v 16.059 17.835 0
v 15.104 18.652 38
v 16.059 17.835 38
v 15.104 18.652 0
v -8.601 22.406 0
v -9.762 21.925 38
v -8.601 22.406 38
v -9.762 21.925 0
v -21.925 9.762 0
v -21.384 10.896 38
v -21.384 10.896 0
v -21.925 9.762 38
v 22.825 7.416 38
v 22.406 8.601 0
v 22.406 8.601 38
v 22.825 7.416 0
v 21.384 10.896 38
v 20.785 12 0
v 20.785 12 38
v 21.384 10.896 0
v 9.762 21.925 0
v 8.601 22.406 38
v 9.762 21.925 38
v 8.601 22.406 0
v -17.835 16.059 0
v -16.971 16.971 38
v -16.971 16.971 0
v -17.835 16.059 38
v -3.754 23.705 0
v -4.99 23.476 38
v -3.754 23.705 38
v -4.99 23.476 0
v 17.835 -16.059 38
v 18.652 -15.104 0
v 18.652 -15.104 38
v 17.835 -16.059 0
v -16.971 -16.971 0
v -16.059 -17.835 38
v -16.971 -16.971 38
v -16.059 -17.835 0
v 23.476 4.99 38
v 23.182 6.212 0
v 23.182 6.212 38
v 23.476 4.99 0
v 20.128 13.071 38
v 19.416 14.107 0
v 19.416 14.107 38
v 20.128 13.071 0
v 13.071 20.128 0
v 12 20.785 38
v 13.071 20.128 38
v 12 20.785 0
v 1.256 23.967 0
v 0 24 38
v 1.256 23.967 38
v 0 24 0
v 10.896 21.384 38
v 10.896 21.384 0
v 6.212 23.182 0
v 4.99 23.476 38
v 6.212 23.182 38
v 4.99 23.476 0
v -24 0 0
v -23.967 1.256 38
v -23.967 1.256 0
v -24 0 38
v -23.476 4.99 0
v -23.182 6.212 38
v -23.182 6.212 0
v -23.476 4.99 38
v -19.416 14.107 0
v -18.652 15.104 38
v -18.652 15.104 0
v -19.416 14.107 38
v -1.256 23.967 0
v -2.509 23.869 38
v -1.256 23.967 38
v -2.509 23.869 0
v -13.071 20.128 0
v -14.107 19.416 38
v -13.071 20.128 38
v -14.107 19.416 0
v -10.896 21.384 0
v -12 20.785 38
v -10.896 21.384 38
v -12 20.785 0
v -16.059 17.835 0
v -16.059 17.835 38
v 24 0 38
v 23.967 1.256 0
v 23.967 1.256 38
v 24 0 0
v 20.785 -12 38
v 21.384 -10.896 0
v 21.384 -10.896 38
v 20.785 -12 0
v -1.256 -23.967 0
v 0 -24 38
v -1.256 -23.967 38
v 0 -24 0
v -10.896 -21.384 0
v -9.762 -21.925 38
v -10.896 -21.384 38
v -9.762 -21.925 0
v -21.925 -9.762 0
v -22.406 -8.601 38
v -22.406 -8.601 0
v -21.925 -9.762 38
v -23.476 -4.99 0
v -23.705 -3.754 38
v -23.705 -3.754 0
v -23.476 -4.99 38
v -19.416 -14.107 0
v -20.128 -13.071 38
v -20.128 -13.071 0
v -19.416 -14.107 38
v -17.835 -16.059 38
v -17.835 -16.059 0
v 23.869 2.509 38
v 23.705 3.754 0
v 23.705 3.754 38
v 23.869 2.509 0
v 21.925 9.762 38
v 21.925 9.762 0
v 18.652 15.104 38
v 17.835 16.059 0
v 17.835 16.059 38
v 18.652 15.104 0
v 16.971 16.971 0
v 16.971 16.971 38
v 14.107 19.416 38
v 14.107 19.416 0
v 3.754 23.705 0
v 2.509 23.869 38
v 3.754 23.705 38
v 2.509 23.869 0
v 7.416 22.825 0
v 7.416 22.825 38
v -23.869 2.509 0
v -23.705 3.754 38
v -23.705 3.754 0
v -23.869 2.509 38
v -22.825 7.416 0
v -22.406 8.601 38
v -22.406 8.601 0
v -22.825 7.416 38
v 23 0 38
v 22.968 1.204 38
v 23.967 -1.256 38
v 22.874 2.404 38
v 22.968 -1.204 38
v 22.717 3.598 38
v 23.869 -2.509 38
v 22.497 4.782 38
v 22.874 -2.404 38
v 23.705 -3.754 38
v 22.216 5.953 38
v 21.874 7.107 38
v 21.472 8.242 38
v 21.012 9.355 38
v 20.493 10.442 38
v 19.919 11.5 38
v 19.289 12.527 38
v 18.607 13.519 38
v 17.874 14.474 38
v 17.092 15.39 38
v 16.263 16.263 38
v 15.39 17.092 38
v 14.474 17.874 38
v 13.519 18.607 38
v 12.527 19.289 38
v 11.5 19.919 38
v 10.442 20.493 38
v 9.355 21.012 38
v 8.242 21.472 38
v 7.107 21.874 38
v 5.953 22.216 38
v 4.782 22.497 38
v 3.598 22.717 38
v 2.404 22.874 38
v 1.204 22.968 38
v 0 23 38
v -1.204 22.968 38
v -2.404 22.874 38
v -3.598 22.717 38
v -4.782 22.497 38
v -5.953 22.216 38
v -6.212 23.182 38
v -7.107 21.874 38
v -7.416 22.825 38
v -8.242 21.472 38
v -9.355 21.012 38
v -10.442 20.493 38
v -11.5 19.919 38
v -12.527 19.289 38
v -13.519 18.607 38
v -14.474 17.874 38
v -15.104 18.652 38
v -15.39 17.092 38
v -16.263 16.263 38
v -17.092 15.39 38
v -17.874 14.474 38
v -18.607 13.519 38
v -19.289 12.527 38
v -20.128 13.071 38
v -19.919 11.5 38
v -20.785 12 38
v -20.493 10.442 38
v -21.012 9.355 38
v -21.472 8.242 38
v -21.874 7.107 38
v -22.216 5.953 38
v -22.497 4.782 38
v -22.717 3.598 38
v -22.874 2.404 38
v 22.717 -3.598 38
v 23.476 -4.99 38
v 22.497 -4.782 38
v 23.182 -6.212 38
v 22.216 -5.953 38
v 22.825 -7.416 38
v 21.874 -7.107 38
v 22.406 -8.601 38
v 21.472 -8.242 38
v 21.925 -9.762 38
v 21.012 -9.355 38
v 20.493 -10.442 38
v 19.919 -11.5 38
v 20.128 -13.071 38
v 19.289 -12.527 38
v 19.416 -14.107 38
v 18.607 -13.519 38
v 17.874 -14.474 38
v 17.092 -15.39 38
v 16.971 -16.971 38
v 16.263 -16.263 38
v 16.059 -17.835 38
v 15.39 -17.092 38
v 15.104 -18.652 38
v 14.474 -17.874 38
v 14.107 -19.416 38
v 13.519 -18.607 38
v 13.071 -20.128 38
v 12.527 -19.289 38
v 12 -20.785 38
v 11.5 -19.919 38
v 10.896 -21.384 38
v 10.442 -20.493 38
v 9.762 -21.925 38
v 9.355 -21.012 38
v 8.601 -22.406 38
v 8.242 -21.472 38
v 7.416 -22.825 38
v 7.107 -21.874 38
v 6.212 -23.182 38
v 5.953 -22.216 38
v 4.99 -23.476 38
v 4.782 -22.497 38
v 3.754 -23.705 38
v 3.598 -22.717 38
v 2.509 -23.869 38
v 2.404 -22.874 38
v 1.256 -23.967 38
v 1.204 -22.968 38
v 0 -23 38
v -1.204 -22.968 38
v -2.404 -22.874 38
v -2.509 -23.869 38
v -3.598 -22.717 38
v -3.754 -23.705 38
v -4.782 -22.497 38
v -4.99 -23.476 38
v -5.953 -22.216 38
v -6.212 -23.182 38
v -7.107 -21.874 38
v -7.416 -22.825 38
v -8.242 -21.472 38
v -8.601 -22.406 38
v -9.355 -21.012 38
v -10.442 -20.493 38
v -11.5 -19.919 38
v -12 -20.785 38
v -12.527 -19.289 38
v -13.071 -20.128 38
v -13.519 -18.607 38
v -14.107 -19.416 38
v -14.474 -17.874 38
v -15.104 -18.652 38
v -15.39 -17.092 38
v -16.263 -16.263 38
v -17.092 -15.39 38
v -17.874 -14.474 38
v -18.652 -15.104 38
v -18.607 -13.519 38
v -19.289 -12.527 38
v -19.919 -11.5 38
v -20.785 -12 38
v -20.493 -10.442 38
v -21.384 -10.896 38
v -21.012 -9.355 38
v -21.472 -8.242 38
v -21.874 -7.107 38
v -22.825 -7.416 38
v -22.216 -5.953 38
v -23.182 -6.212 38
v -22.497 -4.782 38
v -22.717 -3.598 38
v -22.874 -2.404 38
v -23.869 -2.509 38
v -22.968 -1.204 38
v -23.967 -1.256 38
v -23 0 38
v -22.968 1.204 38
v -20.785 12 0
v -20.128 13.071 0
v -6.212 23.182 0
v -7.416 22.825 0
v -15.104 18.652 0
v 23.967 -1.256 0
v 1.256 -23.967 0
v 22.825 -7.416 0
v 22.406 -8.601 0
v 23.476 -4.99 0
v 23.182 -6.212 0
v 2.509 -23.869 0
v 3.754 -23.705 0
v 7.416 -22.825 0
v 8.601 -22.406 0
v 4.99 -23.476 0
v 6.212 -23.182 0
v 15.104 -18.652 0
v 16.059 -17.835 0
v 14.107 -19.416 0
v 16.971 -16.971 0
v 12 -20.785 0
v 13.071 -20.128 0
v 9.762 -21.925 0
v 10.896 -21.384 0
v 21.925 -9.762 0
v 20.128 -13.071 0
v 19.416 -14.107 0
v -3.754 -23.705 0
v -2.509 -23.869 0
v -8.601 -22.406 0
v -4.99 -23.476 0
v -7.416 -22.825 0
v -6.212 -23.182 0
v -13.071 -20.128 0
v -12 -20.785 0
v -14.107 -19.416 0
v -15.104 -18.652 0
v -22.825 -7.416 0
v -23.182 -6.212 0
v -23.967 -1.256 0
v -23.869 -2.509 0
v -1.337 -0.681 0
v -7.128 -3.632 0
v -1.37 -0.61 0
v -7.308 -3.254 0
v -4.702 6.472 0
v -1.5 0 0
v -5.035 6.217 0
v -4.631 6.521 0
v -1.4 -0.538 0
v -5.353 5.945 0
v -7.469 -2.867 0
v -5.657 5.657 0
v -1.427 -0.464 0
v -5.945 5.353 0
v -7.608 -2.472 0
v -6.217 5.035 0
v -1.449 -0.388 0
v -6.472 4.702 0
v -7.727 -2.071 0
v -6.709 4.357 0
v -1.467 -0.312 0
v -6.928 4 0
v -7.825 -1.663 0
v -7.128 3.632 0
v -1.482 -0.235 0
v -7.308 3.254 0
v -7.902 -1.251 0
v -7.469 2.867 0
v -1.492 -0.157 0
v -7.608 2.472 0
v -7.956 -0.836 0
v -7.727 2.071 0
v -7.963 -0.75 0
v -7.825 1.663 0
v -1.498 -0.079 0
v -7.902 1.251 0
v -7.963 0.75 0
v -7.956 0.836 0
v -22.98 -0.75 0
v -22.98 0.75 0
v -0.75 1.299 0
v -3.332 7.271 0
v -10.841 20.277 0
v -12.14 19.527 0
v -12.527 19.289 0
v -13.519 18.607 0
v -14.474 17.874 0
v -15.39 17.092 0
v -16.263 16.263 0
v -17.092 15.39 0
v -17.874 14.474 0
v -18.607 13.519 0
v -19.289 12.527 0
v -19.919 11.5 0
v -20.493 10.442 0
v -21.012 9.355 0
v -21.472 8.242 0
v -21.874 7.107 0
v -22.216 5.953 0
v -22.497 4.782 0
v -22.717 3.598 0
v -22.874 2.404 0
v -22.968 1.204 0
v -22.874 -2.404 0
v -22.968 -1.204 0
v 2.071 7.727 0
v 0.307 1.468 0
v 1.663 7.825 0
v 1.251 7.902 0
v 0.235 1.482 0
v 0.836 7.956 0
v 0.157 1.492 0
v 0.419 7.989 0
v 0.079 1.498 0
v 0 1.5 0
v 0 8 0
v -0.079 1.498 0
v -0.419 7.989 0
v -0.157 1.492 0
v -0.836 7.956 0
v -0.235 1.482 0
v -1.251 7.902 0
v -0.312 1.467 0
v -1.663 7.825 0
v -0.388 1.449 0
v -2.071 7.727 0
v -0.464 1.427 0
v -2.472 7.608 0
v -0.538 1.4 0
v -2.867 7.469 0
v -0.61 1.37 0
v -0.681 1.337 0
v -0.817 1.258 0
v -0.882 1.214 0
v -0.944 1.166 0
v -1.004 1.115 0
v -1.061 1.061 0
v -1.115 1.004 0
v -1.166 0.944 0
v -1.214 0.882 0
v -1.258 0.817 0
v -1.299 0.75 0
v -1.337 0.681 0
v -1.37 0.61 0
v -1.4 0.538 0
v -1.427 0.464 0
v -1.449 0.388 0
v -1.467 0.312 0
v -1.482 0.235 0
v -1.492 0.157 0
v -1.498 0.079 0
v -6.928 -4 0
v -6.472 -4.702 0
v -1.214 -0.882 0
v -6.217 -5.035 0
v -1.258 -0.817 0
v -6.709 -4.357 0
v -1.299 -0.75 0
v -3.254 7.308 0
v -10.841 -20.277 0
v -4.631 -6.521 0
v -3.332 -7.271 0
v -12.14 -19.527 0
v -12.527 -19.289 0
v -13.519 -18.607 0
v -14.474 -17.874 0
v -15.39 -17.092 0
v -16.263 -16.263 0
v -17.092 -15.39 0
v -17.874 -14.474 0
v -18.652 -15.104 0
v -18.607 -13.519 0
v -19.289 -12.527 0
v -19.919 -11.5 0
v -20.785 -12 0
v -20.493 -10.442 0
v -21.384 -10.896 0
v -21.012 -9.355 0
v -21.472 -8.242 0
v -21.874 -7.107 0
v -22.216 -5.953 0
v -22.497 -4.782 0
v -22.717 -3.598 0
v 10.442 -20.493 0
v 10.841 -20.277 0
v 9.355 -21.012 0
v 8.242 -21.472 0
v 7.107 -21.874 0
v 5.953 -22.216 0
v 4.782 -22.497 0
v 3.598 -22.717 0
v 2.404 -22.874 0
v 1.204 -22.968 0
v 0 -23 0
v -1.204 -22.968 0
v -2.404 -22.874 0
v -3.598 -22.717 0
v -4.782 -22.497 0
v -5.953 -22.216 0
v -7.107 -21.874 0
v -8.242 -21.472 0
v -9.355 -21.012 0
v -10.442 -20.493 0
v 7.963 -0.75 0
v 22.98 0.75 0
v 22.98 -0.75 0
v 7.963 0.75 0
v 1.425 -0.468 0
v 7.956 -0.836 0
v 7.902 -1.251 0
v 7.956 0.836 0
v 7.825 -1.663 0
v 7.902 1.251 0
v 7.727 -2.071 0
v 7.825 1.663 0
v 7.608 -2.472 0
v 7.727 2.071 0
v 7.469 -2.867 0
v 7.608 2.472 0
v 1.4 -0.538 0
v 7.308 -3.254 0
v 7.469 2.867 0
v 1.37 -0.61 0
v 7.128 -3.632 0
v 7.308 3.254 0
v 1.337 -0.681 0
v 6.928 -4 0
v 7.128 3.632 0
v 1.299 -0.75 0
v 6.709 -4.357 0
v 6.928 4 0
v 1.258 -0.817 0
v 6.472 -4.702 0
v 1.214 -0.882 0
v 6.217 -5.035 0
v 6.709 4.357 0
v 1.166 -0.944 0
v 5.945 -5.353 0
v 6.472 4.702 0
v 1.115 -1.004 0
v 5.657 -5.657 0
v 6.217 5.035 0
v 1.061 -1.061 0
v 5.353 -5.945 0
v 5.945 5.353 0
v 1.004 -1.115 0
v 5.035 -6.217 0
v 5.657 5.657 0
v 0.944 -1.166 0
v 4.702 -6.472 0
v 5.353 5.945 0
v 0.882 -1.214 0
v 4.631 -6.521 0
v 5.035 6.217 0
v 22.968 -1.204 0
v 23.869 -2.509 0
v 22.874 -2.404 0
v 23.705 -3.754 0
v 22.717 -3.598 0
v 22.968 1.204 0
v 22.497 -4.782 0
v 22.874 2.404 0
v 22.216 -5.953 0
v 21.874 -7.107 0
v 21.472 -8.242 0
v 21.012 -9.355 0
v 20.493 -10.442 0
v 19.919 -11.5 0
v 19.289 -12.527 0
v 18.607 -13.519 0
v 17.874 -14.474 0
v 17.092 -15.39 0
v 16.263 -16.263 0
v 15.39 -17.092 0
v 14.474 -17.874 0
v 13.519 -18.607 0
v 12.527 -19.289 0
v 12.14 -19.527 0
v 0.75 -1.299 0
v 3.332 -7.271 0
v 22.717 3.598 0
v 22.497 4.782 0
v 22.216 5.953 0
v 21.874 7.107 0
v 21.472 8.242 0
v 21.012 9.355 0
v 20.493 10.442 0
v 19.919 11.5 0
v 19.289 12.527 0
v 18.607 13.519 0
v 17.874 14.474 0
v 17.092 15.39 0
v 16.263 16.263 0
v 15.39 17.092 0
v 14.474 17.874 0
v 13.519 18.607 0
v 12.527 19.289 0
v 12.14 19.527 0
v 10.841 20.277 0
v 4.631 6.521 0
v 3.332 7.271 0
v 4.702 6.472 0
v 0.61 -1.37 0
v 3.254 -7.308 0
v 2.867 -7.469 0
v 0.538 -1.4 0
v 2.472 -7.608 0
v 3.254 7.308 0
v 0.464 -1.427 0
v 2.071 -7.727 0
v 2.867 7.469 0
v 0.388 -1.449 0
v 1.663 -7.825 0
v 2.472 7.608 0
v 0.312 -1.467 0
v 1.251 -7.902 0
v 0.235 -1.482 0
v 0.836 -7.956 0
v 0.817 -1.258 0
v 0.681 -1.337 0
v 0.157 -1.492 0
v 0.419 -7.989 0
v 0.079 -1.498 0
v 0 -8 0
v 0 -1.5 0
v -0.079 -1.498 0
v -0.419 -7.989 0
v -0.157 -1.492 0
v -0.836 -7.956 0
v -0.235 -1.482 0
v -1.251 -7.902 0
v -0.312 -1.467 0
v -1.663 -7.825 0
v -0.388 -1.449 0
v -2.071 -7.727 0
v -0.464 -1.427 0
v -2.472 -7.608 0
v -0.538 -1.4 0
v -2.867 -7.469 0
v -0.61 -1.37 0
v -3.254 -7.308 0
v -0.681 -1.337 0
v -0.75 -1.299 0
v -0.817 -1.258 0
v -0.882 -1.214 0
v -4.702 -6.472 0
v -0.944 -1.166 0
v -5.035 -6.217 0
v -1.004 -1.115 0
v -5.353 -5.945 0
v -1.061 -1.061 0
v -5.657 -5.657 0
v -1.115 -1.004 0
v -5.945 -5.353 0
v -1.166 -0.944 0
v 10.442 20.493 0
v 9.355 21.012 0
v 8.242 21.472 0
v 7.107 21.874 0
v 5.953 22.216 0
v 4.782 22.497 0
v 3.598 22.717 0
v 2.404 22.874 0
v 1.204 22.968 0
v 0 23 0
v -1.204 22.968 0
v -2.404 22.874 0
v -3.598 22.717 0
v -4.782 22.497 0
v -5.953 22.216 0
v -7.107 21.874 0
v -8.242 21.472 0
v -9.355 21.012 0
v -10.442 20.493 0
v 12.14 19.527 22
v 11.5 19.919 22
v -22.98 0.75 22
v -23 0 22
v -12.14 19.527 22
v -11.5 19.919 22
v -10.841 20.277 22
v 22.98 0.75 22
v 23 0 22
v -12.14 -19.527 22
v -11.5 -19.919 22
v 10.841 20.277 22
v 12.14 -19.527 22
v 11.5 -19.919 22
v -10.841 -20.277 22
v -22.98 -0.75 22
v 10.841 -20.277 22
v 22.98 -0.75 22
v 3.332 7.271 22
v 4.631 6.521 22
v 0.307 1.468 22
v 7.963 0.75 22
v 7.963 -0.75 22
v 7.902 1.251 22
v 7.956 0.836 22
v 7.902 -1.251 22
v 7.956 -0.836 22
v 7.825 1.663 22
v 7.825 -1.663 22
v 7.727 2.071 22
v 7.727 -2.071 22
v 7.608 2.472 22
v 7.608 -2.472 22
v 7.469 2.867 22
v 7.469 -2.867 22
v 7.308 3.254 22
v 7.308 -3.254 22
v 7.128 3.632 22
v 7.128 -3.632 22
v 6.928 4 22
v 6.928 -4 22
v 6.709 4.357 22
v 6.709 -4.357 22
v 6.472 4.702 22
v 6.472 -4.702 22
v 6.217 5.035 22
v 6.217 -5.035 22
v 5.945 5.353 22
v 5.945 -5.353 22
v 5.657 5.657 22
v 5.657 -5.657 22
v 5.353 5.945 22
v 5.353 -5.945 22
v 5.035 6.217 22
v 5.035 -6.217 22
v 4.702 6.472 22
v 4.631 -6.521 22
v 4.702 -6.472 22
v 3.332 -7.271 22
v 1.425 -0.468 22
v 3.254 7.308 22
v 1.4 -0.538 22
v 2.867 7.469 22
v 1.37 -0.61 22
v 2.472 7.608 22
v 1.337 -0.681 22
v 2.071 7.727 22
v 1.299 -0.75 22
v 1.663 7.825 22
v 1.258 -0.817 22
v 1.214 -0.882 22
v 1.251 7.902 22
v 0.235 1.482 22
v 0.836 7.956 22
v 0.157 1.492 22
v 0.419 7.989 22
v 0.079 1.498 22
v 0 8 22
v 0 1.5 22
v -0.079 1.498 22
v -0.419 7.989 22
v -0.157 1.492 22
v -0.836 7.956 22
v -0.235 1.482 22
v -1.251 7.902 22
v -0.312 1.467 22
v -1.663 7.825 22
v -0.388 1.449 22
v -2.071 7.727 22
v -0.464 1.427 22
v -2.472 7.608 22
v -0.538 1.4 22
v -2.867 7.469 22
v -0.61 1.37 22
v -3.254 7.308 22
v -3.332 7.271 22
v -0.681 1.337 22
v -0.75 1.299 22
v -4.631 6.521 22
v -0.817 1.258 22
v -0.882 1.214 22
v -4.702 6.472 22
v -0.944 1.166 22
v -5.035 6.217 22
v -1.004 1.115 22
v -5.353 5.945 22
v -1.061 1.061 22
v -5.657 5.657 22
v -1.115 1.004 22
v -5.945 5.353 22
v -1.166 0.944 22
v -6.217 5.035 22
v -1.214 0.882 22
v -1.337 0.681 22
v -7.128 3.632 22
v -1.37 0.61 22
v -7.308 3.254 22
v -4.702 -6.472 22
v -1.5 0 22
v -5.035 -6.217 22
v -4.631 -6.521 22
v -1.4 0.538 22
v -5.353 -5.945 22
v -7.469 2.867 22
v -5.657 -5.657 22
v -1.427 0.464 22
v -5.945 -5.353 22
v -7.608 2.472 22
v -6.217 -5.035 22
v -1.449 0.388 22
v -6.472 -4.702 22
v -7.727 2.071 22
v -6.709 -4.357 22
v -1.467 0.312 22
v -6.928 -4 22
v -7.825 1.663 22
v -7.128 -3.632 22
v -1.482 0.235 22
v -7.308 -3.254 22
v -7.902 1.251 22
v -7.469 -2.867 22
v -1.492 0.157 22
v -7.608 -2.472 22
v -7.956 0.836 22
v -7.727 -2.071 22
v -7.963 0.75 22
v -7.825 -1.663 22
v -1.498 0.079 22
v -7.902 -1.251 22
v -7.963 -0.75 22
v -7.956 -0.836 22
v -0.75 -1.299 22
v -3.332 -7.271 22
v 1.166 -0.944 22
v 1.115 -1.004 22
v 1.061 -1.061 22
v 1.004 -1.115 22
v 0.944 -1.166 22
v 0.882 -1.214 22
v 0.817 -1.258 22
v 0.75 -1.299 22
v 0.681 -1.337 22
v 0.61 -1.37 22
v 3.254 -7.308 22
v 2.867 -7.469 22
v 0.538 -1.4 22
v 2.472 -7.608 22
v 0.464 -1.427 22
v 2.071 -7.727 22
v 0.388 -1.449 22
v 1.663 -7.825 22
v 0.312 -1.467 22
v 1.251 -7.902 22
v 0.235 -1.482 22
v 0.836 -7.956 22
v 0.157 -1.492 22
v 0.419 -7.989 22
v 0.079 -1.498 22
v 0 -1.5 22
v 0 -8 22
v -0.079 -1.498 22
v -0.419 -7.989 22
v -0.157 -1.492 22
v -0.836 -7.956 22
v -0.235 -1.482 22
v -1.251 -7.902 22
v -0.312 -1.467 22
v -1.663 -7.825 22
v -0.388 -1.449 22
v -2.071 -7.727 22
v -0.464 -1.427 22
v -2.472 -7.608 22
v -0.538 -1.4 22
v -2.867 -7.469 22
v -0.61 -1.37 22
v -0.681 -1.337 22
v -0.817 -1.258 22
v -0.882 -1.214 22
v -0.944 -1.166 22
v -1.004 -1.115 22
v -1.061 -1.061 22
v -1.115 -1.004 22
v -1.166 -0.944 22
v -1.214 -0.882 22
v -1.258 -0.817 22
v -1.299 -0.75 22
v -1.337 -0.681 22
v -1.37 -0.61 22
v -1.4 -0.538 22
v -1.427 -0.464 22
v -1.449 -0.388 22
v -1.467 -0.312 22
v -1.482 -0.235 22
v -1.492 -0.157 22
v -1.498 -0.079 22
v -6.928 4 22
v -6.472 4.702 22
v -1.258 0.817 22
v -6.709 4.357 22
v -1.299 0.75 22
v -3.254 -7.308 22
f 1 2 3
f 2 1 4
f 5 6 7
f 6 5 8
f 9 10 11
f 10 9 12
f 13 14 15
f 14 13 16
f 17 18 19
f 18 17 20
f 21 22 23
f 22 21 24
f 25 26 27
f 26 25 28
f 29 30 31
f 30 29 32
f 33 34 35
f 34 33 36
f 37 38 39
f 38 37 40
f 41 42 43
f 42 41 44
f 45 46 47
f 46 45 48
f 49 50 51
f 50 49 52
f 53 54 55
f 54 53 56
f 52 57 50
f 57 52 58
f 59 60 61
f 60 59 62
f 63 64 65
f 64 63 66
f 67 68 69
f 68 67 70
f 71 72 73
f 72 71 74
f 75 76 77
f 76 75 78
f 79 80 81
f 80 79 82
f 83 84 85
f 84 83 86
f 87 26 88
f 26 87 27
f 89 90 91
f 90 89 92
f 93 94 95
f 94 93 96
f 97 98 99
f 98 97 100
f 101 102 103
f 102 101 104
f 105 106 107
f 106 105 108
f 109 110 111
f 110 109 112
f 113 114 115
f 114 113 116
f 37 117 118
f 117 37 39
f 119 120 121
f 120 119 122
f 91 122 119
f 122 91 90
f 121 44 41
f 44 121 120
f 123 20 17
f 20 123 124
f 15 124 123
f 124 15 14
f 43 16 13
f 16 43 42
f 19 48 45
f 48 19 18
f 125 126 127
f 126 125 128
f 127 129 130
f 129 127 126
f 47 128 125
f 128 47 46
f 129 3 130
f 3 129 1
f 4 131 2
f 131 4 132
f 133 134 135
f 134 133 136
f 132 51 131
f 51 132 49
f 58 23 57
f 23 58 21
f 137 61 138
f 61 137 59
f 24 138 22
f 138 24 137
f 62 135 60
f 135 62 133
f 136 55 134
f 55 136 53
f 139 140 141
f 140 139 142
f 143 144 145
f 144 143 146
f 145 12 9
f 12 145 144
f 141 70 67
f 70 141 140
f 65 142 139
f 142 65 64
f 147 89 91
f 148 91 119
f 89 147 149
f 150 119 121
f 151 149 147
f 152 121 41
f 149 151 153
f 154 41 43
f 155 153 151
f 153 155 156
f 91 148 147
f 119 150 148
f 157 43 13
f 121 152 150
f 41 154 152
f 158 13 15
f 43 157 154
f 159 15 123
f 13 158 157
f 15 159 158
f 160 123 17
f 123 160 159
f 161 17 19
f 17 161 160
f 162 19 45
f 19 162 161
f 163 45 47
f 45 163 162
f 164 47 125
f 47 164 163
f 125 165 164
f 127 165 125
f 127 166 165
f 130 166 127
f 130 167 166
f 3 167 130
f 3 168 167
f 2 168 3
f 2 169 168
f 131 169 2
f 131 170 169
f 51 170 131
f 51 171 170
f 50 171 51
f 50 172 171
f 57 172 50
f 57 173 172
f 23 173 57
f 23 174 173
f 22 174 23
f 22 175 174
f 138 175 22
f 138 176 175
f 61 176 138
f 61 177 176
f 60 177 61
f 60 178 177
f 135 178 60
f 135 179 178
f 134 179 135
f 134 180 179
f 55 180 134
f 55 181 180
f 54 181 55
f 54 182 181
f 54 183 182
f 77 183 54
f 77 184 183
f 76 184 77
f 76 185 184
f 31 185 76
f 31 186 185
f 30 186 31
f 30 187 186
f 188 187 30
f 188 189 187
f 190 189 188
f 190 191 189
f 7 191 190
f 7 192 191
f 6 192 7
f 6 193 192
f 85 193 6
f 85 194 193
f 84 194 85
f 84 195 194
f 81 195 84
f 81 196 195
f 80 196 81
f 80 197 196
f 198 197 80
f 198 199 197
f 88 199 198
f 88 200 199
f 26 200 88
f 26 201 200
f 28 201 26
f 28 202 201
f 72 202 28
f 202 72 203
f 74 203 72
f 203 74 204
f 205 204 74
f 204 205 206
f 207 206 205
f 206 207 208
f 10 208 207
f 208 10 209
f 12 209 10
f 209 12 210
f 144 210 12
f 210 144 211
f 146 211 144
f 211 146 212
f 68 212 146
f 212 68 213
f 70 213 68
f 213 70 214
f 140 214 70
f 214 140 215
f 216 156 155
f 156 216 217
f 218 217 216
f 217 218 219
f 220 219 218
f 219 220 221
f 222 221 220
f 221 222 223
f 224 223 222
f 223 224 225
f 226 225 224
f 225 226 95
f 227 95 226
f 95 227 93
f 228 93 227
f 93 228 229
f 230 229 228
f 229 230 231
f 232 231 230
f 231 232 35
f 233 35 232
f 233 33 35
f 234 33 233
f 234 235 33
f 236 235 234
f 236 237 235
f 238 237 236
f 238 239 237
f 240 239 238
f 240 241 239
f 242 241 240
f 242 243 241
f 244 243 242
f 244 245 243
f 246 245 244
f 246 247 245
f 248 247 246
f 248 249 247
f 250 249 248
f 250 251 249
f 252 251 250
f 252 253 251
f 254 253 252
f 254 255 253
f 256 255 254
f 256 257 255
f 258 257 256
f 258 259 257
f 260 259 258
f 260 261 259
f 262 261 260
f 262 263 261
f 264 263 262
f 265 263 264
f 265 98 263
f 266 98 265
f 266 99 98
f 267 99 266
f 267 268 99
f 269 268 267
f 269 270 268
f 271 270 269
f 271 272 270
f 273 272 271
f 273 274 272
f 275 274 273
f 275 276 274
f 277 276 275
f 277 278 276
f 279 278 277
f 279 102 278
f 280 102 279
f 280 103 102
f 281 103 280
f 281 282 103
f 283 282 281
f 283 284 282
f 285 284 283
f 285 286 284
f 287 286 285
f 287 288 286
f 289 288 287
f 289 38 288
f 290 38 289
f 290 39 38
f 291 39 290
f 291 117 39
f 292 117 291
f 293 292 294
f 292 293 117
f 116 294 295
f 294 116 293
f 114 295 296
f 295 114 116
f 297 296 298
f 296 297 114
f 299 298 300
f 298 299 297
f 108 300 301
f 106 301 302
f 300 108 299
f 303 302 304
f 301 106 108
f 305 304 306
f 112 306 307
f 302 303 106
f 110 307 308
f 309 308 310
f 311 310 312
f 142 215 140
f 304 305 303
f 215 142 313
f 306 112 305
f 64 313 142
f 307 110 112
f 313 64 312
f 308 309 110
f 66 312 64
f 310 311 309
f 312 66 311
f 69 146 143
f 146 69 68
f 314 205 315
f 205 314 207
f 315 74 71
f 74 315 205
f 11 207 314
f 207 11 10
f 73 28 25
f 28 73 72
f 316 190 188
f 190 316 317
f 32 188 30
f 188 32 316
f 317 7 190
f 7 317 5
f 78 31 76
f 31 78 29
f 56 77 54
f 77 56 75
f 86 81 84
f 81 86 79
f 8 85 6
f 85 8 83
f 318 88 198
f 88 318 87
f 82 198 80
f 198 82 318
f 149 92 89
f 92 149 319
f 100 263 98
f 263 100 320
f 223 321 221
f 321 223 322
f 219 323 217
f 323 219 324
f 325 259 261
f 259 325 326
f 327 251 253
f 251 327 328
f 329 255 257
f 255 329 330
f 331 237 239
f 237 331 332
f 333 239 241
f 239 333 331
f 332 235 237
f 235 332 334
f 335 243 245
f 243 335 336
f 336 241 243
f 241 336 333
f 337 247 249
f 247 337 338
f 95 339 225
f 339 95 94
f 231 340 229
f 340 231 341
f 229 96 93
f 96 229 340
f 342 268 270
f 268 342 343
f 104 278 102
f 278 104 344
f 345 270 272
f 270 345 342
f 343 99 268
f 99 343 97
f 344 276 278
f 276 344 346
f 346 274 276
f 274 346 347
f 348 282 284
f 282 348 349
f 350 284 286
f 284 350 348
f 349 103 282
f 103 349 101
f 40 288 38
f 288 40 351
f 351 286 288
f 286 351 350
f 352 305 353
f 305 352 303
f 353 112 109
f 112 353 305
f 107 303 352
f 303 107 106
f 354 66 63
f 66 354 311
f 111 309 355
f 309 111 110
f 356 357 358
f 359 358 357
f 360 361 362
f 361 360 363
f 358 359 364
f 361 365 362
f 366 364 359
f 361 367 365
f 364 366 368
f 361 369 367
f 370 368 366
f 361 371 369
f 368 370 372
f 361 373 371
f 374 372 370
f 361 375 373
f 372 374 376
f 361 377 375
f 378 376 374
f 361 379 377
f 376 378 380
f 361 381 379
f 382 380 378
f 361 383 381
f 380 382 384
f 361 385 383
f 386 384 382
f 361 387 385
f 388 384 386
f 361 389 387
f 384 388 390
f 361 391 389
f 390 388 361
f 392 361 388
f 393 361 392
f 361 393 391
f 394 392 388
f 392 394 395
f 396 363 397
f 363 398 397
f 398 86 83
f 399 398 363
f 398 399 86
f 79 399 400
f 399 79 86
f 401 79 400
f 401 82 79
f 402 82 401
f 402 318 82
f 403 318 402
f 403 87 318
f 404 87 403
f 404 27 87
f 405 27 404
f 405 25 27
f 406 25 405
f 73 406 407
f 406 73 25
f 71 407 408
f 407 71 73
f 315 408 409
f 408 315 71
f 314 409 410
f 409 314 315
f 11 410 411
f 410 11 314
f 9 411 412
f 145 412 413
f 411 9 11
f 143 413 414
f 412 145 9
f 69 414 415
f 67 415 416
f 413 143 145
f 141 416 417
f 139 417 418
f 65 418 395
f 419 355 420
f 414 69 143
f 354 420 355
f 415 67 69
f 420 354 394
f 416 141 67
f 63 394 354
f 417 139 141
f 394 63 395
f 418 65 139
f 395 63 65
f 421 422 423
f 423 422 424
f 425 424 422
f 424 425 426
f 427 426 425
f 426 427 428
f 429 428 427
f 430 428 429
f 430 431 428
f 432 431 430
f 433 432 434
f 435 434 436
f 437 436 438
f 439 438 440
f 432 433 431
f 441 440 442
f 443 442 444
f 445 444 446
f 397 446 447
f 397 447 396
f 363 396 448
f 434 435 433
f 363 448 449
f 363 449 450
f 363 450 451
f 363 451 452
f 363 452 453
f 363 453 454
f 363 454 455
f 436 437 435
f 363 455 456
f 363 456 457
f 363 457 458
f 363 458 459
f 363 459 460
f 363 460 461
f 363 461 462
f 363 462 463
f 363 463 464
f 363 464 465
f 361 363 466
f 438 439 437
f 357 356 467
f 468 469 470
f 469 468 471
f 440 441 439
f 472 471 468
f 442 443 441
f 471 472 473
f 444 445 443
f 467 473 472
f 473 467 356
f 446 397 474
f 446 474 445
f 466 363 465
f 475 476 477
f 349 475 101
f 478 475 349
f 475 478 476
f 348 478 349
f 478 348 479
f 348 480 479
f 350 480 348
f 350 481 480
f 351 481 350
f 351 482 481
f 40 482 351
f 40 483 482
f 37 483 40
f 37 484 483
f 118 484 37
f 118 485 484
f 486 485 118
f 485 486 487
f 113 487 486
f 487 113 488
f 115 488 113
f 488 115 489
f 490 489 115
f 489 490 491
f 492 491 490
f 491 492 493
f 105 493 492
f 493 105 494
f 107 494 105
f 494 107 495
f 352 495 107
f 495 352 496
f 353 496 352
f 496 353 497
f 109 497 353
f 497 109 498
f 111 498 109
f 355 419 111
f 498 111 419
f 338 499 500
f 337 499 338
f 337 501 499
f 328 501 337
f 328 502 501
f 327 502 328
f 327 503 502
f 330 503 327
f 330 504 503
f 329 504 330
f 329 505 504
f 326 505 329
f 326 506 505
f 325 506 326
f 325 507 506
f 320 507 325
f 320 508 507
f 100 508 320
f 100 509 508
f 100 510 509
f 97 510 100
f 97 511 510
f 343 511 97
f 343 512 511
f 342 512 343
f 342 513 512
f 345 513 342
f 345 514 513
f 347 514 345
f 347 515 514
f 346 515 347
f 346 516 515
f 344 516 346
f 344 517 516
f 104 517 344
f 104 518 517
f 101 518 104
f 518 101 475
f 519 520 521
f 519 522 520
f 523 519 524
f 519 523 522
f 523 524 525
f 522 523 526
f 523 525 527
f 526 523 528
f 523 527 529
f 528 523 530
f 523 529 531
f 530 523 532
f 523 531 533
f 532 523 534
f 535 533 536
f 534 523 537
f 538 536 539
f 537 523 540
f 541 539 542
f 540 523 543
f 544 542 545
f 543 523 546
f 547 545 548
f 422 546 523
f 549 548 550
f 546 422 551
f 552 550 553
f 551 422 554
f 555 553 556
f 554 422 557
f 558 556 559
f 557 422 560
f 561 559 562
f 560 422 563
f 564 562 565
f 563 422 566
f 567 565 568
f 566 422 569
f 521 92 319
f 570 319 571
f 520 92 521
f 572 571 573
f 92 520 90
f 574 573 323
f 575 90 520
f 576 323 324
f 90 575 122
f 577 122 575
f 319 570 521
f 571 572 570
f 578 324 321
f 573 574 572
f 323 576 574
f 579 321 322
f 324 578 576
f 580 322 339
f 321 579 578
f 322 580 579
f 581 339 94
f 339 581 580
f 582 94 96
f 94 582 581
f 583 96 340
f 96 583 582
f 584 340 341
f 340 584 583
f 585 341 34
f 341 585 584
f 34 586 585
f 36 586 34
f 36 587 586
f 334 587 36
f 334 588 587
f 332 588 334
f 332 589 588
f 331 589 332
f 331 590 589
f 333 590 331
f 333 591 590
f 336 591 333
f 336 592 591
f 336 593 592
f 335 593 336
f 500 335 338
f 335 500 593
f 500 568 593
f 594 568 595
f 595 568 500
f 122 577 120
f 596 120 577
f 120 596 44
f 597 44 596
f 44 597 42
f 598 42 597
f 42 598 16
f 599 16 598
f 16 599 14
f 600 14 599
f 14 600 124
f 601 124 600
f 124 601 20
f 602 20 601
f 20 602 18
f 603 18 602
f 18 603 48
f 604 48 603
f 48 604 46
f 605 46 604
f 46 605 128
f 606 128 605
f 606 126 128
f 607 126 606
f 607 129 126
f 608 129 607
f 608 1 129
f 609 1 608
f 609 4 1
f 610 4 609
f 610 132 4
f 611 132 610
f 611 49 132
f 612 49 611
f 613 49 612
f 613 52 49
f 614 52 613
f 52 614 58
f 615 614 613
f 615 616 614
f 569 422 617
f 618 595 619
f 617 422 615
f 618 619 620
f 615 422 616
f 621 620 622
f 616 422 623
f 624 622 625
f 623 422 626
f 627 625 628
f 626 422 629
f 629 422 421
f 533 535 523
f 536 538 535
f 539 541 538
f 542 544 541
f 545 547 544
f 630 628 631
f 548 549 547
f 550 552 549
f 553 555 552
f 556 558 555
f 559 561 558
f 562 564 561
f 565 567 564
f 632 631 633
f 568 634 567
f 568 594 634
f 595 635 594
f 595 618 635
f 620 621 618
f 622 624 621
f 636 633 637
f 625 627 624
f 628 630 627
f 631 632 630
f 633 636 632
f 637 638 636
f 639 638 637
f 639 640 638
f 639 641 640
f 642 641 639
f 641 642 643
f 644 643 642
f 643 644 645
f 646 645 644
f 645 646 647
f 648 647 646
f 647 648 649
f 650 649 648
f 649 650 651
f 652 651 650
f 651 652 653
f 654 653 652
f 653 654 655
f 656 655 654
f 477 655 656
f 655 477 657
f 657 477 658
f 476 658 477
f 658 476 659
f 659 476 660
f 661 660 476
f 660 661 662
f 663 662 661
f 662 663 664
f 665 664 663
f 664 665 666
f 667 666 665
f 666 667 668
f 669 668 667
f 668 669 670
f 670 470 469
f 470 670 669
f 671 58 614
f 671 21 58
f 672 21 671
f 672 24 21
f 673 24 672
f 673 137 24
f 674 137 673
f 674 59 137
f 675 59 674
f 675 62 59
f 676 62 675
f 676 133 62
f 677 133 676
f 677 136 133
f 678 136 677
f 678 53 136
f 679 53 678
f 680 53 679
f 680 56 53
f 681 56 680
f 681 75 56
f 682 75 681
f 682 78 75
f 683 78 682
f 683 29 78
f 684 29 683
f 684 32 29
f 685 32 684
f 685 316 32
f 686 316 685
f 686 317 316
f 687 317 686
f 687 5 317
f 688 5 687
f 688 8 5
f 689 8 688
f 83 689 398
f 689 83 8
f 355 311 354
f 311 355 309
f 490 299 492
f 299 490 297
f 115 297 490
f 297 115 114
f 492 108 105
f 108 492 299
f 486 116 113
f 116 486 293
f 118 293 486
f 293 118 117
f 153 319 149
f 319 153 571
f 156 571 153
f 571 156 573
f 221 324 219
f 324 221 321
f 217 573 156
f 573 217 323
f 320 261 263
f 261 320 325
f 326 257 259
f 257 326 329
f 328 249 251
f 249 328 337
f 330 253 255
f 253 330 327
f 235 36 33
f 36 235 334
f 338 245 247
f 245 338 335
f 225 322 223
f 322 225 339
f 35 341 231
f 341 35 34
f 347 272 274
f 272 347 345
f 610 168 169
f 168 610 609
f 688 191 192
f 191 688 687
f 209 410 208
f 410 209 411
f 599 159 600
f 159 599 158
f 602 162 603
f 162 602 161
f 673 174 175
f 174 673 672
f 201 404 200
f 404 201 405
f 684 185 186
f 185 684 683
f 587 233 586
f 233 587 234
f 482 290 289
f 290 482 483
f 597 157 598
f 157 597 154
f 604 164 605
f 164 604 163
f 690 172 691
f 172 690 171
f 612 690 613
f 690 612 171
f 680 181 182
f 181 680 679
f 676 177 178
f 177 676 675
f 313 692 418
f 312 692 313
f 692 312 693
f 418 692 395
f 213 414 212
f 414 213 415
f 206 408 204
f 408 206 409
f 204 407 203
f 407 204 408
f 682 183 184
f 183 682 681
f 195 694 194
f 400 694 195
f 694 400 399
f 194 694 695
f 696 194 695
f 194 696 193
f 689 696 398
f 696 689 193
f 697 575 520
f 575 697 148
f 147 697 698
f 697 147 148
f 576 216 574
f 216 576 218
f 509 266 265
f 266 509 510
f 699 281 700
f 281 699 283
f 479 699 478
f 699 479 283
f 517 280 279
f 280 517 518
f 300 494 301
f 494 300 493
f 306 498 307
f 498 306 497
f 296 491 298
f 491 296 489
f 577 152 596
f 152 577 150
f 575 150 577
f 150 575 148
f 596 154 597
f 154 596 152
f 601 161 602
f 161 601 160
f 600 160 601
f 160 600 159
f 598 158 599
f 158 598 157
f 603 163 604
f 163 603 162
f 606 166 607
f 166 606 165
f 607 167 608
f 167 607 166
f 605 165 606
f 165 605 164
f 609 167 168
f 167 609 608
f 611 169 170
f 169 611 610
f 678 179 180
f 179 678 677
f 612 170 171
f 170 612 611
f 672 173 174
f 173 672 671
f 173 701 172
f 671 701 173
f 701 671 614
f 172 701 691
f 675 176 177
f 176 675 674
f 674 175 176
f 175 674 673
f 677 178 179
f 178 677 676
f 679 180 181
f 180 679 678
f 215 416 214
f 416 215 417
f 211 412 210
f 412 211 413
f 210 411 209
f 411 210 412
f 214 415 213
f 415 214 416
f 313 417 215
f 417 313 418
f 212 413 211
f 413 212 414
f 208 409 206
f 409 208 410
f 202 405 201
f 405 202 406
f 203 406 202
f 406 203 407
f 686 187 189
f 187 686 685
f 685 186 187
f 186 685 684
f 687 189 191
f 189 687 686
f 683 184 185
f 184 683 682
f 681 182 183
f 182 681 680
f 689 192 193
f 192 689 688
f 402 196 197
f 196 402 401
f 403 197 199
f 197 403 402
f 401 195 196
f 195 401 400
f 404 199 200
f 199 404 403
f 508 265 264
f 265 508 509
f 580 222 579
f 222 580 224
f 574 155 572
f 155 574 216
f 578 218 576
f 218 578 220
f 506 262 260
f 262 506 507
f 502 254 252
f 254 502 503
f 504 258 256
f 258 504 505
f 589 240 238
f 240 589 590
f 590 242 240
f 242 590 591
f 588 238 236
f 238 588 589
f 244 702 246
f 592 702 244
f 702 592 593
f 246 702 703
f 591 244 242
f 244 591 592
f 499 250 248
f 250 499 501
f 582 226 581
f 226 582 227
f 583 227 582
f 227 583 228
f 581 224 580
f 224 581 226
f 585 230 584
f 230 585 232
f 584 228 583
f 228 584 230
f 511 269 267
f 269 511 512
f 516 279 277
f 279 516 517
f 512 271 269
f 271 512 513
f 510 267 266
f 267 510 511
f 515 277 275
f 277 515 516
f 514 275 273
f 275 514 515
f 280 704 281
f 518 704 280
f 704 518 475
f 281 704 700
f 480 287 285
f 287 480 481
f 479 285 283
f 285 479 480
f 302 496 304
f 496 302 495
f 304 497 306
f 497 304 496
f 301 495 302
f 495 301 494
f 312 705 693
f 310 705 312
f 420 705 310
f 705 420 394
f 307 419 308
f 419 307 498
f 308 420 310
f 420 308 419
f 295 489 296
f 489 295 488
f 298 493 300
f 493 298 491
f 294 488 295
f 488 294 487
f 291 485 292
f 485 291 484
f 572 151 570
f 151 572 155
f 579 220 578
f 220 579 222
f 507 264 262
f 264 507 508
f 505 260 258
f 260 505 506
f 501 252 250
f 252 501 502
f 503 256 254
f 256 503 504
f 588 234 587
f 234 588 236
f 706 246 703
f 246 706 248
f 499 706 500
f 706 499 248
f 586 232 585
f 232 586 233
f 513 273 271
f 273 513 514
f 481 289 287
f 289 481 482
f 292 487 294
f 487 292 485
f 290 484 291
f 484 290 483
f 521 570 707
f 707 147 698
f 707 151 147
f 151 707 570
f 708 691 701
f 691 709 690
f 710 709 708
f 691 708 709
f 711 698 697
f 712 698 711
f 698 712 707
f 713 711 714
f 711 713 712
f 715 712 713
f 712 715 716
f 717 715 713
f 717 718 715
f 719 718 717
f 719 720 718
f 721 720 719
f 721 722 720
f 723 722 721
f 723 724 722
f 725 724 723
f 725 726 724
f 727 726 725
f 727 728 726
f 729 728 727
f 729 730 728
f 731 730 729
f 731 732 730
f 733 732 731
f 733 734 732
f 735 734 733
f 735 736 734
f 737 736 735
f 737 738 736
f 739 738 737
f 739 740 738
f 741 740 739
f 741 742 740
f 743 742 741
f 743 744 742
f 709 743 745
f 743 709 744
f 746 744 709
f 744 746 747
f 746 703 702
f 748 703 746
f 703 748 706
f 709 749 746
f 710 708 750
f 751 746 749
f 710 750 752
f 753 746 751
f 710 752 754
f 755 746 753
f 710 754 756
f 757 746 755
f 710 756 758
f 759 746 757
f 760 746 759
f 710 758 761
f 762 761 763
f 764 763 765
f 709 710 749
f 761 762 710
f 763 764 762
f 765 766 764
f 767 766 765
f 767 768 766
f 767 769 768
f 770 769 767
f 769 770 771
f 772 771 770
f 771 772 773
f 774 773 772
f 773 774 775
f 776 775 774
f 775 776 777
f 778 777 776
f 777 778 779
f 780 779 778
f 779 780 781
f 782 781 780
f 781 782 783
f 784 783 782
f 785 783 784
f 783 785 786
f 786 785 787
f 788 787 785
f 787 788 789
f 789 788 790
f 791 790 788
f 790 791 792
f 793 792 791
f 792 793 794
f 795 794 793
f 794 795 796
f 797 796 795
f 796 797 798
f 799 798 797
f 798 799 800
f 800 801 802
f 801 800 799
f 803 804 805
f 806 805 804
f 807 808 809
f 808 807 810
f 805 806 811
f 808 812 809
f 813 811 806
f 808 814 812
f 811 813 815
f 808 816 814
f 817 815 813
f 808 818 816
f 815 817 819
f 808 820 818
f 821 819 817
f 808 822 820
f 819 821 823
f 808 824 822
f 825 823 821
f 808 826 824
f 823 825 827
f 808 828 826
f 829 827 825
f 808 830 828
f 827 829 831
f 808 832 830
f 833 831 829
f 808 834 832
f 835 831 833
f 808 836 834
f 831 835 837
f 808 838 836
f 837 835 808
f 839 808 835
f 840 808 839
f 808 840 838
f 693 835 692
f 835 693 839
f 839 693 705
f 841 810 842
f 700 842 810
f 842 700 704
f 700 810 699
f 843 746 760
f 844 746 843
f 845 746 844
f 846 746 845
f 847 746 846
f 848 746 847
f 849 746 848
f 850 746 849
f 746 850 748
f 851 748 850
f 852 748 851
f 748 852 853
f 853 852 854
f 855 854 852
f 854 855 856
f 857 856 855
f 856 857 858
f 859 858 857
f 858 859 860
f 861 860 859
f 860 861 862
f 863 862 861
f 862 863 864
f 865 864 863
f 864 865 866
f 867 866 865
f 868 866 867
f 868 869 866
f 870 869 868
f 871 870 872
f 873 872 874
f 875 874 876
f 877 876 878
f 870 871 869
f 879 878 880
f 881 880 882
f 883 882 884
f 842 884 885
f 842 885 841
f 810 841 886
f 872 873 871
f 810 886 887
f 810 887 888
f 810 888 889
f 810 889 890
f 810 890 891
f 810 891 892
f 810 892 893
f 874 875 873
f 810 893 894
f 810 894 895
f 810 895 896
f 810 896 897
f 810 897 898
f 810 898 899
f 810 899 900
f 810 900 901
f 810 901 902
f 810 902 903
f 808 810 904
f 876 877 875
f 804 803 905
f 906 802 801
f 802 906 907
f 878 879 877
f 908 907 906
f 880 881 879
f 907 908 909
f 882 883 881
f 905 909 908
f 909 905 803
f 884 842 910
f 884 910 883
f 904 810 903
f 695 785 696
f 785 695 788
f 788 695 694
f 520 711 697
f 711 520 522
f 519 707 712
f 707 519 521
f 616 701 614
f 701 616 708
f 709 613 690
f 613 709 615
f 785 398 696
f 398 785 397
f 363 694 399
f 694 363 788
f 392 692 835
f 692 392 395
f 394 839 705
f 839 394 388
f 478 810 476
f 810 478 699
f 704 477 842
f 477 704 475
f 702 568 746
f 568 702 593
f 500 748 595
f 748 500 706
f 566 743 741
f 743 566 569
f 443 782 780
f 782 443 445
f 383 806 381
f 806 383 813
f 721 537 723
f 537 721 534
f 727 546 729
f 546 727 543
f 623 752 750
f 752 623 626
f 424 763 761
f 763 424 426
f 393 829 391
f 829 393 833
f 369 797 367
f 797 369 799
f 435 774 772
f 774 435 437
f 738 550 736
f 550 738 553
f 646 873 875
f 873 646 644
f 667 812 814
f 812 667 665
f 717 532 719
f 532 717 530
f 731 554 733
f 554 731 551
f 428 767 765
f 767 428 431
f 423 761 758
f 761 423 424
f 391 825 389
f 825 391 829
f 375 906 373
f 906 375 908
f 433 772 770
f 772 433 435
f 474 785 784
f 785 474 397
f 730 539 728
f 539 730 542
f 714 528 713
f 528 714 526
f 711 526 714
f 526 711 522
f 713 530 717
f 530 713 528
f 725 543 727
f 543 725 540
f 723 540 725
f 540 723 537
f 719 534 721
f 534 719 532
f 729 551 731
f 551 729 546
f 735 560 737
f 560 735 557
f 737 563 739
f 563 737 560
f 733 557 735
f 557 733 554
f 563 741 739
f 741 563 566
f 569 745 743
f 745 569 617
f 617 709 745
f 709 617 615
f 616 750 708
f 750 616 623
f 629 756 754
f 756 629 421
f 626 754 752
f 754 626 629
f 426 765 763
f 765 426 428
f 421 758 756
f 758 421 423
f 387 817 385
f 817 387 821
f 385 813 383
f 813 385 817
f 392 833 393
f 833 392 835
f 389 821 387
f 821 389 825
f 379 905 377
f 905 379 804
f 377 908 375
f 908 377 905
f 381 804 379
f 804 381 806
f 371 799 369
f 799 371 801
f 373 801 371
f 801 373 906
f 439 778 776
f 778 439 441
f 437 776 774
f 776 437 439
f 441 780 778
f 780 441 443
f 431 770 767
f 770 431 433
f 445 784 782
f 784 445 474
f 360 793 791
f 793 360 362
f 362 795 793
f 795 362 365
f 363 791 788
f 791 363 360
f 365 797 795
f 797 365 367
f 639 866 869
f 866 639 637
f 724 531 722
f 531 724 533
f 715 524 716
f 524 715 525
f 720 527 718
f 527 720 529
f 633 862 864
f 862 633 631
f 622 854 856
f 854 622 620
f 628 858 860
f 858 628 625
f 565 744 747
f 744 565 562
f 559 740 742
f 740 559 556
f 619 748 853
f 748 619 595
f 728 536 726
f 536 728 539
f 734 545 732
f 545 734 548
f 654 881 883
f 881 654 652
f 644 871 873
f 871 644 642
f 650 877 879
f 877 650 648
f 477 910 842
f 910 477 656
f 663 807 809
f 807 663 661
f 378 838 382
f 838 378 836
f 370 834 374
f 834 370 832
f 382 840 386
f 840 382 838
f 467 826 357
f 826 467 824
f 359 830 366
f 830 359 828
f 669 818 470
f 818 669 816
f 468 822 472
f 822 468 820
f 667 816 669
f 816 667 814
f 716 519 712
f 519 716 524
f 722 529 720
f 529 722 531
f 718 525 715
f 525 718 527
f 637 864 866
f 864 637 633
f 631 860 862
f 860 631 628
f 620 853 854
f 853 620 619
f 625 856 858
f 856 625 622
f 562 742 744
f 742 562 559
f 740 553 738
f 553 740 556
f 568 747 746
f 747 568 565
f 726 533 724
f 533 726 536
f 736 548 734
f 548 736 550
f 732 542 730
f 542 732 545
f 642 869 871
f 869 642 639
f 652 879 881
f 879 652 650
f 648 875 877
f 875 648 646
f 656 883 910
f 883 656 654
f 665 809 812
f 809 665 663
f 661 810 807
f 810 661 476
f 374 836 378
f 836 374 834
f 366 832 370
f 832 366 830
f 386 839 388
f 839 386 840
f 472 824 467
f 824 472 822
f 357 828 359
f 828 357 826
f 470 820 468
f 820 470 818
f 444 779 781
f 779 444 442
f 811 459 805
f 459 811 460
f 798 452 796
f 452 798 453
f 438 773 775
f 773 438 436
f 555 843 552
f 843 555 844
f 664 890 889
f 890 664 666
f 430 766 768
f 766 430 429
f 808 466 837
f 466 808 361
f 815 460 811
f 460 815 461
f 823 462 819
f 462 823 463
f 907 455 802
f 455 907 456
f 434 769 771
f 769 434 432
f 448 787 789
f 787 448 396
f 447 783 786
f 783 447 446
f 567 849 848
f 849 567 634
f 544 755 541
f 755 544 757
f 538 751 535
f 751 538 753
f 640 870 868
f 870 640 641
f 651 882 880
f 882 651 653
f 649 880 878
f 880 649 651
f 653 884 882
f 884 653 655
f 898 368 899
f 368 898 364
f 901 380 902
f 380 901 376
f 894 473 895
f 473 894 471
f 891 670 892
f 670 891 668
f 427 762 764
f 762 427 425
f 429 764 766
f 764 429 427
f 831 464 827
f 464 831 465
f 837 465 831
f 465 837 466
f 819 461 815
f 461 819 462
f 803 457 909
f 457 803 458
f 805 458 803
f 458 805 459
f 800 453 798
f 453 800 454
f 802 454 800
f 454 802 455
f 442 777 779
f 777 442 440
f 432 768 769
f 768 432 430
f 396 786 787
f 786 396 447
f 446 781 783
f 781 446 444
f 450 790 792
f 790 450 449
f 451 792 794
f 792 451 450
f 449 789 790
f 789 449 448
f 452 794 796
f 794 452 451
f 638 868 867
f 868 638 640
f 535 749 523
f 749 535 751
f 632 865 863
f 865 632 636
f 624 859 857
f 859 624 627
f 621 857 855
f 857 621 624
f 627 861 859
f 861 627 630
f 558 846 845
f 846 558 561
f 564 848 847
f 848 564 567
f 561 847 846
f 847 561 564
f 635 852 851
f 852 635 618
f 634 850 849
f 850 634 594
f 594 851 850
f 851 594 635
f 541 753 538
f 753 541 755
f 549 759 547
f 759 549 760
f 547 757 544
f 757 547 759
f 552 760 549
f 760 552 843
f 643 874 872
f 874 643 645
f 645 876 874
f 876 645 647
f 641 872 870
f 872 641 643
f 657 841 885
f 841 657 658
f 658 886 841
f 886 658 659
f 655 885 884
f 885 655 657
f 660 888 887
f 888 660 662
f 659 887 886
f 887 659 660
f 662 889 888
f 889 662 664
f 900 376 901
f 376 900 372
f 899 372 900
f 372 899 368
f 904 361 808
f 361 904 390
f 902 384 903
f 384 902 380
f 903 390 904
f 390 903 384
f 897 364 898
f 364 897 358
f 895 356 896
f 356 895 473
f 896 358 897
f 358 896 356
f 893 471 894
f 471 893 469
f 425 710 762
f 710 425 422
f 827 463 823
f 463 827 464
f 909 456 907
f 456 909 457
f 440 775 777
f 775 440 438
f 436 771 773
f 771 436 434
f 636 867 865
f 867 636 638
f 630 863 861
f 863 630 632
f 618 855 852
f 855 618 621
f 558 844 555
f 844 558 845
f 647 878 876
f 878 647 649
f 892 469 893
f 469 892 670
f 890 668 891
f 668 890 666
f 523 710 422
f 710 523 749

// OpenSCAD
$fn=120;
difference(){
cylinder(d=48,h=38);
translate([0,0,-1])cylinder(d=46,h=40);
}
difference(){
union()
{
for(i=[0:60:300])
{
    rotate([0,0,i])translate([3.1,-0.75,0])
    cube(size=[20,1.5,22]);
} 
cylinder(d=16,h=22);
}
translate([0,0,-1])cylinder(d=3,h=24);
}
rotate([0,0,30])translate([1,-2,0])
cube(size=[2,4,22]);
